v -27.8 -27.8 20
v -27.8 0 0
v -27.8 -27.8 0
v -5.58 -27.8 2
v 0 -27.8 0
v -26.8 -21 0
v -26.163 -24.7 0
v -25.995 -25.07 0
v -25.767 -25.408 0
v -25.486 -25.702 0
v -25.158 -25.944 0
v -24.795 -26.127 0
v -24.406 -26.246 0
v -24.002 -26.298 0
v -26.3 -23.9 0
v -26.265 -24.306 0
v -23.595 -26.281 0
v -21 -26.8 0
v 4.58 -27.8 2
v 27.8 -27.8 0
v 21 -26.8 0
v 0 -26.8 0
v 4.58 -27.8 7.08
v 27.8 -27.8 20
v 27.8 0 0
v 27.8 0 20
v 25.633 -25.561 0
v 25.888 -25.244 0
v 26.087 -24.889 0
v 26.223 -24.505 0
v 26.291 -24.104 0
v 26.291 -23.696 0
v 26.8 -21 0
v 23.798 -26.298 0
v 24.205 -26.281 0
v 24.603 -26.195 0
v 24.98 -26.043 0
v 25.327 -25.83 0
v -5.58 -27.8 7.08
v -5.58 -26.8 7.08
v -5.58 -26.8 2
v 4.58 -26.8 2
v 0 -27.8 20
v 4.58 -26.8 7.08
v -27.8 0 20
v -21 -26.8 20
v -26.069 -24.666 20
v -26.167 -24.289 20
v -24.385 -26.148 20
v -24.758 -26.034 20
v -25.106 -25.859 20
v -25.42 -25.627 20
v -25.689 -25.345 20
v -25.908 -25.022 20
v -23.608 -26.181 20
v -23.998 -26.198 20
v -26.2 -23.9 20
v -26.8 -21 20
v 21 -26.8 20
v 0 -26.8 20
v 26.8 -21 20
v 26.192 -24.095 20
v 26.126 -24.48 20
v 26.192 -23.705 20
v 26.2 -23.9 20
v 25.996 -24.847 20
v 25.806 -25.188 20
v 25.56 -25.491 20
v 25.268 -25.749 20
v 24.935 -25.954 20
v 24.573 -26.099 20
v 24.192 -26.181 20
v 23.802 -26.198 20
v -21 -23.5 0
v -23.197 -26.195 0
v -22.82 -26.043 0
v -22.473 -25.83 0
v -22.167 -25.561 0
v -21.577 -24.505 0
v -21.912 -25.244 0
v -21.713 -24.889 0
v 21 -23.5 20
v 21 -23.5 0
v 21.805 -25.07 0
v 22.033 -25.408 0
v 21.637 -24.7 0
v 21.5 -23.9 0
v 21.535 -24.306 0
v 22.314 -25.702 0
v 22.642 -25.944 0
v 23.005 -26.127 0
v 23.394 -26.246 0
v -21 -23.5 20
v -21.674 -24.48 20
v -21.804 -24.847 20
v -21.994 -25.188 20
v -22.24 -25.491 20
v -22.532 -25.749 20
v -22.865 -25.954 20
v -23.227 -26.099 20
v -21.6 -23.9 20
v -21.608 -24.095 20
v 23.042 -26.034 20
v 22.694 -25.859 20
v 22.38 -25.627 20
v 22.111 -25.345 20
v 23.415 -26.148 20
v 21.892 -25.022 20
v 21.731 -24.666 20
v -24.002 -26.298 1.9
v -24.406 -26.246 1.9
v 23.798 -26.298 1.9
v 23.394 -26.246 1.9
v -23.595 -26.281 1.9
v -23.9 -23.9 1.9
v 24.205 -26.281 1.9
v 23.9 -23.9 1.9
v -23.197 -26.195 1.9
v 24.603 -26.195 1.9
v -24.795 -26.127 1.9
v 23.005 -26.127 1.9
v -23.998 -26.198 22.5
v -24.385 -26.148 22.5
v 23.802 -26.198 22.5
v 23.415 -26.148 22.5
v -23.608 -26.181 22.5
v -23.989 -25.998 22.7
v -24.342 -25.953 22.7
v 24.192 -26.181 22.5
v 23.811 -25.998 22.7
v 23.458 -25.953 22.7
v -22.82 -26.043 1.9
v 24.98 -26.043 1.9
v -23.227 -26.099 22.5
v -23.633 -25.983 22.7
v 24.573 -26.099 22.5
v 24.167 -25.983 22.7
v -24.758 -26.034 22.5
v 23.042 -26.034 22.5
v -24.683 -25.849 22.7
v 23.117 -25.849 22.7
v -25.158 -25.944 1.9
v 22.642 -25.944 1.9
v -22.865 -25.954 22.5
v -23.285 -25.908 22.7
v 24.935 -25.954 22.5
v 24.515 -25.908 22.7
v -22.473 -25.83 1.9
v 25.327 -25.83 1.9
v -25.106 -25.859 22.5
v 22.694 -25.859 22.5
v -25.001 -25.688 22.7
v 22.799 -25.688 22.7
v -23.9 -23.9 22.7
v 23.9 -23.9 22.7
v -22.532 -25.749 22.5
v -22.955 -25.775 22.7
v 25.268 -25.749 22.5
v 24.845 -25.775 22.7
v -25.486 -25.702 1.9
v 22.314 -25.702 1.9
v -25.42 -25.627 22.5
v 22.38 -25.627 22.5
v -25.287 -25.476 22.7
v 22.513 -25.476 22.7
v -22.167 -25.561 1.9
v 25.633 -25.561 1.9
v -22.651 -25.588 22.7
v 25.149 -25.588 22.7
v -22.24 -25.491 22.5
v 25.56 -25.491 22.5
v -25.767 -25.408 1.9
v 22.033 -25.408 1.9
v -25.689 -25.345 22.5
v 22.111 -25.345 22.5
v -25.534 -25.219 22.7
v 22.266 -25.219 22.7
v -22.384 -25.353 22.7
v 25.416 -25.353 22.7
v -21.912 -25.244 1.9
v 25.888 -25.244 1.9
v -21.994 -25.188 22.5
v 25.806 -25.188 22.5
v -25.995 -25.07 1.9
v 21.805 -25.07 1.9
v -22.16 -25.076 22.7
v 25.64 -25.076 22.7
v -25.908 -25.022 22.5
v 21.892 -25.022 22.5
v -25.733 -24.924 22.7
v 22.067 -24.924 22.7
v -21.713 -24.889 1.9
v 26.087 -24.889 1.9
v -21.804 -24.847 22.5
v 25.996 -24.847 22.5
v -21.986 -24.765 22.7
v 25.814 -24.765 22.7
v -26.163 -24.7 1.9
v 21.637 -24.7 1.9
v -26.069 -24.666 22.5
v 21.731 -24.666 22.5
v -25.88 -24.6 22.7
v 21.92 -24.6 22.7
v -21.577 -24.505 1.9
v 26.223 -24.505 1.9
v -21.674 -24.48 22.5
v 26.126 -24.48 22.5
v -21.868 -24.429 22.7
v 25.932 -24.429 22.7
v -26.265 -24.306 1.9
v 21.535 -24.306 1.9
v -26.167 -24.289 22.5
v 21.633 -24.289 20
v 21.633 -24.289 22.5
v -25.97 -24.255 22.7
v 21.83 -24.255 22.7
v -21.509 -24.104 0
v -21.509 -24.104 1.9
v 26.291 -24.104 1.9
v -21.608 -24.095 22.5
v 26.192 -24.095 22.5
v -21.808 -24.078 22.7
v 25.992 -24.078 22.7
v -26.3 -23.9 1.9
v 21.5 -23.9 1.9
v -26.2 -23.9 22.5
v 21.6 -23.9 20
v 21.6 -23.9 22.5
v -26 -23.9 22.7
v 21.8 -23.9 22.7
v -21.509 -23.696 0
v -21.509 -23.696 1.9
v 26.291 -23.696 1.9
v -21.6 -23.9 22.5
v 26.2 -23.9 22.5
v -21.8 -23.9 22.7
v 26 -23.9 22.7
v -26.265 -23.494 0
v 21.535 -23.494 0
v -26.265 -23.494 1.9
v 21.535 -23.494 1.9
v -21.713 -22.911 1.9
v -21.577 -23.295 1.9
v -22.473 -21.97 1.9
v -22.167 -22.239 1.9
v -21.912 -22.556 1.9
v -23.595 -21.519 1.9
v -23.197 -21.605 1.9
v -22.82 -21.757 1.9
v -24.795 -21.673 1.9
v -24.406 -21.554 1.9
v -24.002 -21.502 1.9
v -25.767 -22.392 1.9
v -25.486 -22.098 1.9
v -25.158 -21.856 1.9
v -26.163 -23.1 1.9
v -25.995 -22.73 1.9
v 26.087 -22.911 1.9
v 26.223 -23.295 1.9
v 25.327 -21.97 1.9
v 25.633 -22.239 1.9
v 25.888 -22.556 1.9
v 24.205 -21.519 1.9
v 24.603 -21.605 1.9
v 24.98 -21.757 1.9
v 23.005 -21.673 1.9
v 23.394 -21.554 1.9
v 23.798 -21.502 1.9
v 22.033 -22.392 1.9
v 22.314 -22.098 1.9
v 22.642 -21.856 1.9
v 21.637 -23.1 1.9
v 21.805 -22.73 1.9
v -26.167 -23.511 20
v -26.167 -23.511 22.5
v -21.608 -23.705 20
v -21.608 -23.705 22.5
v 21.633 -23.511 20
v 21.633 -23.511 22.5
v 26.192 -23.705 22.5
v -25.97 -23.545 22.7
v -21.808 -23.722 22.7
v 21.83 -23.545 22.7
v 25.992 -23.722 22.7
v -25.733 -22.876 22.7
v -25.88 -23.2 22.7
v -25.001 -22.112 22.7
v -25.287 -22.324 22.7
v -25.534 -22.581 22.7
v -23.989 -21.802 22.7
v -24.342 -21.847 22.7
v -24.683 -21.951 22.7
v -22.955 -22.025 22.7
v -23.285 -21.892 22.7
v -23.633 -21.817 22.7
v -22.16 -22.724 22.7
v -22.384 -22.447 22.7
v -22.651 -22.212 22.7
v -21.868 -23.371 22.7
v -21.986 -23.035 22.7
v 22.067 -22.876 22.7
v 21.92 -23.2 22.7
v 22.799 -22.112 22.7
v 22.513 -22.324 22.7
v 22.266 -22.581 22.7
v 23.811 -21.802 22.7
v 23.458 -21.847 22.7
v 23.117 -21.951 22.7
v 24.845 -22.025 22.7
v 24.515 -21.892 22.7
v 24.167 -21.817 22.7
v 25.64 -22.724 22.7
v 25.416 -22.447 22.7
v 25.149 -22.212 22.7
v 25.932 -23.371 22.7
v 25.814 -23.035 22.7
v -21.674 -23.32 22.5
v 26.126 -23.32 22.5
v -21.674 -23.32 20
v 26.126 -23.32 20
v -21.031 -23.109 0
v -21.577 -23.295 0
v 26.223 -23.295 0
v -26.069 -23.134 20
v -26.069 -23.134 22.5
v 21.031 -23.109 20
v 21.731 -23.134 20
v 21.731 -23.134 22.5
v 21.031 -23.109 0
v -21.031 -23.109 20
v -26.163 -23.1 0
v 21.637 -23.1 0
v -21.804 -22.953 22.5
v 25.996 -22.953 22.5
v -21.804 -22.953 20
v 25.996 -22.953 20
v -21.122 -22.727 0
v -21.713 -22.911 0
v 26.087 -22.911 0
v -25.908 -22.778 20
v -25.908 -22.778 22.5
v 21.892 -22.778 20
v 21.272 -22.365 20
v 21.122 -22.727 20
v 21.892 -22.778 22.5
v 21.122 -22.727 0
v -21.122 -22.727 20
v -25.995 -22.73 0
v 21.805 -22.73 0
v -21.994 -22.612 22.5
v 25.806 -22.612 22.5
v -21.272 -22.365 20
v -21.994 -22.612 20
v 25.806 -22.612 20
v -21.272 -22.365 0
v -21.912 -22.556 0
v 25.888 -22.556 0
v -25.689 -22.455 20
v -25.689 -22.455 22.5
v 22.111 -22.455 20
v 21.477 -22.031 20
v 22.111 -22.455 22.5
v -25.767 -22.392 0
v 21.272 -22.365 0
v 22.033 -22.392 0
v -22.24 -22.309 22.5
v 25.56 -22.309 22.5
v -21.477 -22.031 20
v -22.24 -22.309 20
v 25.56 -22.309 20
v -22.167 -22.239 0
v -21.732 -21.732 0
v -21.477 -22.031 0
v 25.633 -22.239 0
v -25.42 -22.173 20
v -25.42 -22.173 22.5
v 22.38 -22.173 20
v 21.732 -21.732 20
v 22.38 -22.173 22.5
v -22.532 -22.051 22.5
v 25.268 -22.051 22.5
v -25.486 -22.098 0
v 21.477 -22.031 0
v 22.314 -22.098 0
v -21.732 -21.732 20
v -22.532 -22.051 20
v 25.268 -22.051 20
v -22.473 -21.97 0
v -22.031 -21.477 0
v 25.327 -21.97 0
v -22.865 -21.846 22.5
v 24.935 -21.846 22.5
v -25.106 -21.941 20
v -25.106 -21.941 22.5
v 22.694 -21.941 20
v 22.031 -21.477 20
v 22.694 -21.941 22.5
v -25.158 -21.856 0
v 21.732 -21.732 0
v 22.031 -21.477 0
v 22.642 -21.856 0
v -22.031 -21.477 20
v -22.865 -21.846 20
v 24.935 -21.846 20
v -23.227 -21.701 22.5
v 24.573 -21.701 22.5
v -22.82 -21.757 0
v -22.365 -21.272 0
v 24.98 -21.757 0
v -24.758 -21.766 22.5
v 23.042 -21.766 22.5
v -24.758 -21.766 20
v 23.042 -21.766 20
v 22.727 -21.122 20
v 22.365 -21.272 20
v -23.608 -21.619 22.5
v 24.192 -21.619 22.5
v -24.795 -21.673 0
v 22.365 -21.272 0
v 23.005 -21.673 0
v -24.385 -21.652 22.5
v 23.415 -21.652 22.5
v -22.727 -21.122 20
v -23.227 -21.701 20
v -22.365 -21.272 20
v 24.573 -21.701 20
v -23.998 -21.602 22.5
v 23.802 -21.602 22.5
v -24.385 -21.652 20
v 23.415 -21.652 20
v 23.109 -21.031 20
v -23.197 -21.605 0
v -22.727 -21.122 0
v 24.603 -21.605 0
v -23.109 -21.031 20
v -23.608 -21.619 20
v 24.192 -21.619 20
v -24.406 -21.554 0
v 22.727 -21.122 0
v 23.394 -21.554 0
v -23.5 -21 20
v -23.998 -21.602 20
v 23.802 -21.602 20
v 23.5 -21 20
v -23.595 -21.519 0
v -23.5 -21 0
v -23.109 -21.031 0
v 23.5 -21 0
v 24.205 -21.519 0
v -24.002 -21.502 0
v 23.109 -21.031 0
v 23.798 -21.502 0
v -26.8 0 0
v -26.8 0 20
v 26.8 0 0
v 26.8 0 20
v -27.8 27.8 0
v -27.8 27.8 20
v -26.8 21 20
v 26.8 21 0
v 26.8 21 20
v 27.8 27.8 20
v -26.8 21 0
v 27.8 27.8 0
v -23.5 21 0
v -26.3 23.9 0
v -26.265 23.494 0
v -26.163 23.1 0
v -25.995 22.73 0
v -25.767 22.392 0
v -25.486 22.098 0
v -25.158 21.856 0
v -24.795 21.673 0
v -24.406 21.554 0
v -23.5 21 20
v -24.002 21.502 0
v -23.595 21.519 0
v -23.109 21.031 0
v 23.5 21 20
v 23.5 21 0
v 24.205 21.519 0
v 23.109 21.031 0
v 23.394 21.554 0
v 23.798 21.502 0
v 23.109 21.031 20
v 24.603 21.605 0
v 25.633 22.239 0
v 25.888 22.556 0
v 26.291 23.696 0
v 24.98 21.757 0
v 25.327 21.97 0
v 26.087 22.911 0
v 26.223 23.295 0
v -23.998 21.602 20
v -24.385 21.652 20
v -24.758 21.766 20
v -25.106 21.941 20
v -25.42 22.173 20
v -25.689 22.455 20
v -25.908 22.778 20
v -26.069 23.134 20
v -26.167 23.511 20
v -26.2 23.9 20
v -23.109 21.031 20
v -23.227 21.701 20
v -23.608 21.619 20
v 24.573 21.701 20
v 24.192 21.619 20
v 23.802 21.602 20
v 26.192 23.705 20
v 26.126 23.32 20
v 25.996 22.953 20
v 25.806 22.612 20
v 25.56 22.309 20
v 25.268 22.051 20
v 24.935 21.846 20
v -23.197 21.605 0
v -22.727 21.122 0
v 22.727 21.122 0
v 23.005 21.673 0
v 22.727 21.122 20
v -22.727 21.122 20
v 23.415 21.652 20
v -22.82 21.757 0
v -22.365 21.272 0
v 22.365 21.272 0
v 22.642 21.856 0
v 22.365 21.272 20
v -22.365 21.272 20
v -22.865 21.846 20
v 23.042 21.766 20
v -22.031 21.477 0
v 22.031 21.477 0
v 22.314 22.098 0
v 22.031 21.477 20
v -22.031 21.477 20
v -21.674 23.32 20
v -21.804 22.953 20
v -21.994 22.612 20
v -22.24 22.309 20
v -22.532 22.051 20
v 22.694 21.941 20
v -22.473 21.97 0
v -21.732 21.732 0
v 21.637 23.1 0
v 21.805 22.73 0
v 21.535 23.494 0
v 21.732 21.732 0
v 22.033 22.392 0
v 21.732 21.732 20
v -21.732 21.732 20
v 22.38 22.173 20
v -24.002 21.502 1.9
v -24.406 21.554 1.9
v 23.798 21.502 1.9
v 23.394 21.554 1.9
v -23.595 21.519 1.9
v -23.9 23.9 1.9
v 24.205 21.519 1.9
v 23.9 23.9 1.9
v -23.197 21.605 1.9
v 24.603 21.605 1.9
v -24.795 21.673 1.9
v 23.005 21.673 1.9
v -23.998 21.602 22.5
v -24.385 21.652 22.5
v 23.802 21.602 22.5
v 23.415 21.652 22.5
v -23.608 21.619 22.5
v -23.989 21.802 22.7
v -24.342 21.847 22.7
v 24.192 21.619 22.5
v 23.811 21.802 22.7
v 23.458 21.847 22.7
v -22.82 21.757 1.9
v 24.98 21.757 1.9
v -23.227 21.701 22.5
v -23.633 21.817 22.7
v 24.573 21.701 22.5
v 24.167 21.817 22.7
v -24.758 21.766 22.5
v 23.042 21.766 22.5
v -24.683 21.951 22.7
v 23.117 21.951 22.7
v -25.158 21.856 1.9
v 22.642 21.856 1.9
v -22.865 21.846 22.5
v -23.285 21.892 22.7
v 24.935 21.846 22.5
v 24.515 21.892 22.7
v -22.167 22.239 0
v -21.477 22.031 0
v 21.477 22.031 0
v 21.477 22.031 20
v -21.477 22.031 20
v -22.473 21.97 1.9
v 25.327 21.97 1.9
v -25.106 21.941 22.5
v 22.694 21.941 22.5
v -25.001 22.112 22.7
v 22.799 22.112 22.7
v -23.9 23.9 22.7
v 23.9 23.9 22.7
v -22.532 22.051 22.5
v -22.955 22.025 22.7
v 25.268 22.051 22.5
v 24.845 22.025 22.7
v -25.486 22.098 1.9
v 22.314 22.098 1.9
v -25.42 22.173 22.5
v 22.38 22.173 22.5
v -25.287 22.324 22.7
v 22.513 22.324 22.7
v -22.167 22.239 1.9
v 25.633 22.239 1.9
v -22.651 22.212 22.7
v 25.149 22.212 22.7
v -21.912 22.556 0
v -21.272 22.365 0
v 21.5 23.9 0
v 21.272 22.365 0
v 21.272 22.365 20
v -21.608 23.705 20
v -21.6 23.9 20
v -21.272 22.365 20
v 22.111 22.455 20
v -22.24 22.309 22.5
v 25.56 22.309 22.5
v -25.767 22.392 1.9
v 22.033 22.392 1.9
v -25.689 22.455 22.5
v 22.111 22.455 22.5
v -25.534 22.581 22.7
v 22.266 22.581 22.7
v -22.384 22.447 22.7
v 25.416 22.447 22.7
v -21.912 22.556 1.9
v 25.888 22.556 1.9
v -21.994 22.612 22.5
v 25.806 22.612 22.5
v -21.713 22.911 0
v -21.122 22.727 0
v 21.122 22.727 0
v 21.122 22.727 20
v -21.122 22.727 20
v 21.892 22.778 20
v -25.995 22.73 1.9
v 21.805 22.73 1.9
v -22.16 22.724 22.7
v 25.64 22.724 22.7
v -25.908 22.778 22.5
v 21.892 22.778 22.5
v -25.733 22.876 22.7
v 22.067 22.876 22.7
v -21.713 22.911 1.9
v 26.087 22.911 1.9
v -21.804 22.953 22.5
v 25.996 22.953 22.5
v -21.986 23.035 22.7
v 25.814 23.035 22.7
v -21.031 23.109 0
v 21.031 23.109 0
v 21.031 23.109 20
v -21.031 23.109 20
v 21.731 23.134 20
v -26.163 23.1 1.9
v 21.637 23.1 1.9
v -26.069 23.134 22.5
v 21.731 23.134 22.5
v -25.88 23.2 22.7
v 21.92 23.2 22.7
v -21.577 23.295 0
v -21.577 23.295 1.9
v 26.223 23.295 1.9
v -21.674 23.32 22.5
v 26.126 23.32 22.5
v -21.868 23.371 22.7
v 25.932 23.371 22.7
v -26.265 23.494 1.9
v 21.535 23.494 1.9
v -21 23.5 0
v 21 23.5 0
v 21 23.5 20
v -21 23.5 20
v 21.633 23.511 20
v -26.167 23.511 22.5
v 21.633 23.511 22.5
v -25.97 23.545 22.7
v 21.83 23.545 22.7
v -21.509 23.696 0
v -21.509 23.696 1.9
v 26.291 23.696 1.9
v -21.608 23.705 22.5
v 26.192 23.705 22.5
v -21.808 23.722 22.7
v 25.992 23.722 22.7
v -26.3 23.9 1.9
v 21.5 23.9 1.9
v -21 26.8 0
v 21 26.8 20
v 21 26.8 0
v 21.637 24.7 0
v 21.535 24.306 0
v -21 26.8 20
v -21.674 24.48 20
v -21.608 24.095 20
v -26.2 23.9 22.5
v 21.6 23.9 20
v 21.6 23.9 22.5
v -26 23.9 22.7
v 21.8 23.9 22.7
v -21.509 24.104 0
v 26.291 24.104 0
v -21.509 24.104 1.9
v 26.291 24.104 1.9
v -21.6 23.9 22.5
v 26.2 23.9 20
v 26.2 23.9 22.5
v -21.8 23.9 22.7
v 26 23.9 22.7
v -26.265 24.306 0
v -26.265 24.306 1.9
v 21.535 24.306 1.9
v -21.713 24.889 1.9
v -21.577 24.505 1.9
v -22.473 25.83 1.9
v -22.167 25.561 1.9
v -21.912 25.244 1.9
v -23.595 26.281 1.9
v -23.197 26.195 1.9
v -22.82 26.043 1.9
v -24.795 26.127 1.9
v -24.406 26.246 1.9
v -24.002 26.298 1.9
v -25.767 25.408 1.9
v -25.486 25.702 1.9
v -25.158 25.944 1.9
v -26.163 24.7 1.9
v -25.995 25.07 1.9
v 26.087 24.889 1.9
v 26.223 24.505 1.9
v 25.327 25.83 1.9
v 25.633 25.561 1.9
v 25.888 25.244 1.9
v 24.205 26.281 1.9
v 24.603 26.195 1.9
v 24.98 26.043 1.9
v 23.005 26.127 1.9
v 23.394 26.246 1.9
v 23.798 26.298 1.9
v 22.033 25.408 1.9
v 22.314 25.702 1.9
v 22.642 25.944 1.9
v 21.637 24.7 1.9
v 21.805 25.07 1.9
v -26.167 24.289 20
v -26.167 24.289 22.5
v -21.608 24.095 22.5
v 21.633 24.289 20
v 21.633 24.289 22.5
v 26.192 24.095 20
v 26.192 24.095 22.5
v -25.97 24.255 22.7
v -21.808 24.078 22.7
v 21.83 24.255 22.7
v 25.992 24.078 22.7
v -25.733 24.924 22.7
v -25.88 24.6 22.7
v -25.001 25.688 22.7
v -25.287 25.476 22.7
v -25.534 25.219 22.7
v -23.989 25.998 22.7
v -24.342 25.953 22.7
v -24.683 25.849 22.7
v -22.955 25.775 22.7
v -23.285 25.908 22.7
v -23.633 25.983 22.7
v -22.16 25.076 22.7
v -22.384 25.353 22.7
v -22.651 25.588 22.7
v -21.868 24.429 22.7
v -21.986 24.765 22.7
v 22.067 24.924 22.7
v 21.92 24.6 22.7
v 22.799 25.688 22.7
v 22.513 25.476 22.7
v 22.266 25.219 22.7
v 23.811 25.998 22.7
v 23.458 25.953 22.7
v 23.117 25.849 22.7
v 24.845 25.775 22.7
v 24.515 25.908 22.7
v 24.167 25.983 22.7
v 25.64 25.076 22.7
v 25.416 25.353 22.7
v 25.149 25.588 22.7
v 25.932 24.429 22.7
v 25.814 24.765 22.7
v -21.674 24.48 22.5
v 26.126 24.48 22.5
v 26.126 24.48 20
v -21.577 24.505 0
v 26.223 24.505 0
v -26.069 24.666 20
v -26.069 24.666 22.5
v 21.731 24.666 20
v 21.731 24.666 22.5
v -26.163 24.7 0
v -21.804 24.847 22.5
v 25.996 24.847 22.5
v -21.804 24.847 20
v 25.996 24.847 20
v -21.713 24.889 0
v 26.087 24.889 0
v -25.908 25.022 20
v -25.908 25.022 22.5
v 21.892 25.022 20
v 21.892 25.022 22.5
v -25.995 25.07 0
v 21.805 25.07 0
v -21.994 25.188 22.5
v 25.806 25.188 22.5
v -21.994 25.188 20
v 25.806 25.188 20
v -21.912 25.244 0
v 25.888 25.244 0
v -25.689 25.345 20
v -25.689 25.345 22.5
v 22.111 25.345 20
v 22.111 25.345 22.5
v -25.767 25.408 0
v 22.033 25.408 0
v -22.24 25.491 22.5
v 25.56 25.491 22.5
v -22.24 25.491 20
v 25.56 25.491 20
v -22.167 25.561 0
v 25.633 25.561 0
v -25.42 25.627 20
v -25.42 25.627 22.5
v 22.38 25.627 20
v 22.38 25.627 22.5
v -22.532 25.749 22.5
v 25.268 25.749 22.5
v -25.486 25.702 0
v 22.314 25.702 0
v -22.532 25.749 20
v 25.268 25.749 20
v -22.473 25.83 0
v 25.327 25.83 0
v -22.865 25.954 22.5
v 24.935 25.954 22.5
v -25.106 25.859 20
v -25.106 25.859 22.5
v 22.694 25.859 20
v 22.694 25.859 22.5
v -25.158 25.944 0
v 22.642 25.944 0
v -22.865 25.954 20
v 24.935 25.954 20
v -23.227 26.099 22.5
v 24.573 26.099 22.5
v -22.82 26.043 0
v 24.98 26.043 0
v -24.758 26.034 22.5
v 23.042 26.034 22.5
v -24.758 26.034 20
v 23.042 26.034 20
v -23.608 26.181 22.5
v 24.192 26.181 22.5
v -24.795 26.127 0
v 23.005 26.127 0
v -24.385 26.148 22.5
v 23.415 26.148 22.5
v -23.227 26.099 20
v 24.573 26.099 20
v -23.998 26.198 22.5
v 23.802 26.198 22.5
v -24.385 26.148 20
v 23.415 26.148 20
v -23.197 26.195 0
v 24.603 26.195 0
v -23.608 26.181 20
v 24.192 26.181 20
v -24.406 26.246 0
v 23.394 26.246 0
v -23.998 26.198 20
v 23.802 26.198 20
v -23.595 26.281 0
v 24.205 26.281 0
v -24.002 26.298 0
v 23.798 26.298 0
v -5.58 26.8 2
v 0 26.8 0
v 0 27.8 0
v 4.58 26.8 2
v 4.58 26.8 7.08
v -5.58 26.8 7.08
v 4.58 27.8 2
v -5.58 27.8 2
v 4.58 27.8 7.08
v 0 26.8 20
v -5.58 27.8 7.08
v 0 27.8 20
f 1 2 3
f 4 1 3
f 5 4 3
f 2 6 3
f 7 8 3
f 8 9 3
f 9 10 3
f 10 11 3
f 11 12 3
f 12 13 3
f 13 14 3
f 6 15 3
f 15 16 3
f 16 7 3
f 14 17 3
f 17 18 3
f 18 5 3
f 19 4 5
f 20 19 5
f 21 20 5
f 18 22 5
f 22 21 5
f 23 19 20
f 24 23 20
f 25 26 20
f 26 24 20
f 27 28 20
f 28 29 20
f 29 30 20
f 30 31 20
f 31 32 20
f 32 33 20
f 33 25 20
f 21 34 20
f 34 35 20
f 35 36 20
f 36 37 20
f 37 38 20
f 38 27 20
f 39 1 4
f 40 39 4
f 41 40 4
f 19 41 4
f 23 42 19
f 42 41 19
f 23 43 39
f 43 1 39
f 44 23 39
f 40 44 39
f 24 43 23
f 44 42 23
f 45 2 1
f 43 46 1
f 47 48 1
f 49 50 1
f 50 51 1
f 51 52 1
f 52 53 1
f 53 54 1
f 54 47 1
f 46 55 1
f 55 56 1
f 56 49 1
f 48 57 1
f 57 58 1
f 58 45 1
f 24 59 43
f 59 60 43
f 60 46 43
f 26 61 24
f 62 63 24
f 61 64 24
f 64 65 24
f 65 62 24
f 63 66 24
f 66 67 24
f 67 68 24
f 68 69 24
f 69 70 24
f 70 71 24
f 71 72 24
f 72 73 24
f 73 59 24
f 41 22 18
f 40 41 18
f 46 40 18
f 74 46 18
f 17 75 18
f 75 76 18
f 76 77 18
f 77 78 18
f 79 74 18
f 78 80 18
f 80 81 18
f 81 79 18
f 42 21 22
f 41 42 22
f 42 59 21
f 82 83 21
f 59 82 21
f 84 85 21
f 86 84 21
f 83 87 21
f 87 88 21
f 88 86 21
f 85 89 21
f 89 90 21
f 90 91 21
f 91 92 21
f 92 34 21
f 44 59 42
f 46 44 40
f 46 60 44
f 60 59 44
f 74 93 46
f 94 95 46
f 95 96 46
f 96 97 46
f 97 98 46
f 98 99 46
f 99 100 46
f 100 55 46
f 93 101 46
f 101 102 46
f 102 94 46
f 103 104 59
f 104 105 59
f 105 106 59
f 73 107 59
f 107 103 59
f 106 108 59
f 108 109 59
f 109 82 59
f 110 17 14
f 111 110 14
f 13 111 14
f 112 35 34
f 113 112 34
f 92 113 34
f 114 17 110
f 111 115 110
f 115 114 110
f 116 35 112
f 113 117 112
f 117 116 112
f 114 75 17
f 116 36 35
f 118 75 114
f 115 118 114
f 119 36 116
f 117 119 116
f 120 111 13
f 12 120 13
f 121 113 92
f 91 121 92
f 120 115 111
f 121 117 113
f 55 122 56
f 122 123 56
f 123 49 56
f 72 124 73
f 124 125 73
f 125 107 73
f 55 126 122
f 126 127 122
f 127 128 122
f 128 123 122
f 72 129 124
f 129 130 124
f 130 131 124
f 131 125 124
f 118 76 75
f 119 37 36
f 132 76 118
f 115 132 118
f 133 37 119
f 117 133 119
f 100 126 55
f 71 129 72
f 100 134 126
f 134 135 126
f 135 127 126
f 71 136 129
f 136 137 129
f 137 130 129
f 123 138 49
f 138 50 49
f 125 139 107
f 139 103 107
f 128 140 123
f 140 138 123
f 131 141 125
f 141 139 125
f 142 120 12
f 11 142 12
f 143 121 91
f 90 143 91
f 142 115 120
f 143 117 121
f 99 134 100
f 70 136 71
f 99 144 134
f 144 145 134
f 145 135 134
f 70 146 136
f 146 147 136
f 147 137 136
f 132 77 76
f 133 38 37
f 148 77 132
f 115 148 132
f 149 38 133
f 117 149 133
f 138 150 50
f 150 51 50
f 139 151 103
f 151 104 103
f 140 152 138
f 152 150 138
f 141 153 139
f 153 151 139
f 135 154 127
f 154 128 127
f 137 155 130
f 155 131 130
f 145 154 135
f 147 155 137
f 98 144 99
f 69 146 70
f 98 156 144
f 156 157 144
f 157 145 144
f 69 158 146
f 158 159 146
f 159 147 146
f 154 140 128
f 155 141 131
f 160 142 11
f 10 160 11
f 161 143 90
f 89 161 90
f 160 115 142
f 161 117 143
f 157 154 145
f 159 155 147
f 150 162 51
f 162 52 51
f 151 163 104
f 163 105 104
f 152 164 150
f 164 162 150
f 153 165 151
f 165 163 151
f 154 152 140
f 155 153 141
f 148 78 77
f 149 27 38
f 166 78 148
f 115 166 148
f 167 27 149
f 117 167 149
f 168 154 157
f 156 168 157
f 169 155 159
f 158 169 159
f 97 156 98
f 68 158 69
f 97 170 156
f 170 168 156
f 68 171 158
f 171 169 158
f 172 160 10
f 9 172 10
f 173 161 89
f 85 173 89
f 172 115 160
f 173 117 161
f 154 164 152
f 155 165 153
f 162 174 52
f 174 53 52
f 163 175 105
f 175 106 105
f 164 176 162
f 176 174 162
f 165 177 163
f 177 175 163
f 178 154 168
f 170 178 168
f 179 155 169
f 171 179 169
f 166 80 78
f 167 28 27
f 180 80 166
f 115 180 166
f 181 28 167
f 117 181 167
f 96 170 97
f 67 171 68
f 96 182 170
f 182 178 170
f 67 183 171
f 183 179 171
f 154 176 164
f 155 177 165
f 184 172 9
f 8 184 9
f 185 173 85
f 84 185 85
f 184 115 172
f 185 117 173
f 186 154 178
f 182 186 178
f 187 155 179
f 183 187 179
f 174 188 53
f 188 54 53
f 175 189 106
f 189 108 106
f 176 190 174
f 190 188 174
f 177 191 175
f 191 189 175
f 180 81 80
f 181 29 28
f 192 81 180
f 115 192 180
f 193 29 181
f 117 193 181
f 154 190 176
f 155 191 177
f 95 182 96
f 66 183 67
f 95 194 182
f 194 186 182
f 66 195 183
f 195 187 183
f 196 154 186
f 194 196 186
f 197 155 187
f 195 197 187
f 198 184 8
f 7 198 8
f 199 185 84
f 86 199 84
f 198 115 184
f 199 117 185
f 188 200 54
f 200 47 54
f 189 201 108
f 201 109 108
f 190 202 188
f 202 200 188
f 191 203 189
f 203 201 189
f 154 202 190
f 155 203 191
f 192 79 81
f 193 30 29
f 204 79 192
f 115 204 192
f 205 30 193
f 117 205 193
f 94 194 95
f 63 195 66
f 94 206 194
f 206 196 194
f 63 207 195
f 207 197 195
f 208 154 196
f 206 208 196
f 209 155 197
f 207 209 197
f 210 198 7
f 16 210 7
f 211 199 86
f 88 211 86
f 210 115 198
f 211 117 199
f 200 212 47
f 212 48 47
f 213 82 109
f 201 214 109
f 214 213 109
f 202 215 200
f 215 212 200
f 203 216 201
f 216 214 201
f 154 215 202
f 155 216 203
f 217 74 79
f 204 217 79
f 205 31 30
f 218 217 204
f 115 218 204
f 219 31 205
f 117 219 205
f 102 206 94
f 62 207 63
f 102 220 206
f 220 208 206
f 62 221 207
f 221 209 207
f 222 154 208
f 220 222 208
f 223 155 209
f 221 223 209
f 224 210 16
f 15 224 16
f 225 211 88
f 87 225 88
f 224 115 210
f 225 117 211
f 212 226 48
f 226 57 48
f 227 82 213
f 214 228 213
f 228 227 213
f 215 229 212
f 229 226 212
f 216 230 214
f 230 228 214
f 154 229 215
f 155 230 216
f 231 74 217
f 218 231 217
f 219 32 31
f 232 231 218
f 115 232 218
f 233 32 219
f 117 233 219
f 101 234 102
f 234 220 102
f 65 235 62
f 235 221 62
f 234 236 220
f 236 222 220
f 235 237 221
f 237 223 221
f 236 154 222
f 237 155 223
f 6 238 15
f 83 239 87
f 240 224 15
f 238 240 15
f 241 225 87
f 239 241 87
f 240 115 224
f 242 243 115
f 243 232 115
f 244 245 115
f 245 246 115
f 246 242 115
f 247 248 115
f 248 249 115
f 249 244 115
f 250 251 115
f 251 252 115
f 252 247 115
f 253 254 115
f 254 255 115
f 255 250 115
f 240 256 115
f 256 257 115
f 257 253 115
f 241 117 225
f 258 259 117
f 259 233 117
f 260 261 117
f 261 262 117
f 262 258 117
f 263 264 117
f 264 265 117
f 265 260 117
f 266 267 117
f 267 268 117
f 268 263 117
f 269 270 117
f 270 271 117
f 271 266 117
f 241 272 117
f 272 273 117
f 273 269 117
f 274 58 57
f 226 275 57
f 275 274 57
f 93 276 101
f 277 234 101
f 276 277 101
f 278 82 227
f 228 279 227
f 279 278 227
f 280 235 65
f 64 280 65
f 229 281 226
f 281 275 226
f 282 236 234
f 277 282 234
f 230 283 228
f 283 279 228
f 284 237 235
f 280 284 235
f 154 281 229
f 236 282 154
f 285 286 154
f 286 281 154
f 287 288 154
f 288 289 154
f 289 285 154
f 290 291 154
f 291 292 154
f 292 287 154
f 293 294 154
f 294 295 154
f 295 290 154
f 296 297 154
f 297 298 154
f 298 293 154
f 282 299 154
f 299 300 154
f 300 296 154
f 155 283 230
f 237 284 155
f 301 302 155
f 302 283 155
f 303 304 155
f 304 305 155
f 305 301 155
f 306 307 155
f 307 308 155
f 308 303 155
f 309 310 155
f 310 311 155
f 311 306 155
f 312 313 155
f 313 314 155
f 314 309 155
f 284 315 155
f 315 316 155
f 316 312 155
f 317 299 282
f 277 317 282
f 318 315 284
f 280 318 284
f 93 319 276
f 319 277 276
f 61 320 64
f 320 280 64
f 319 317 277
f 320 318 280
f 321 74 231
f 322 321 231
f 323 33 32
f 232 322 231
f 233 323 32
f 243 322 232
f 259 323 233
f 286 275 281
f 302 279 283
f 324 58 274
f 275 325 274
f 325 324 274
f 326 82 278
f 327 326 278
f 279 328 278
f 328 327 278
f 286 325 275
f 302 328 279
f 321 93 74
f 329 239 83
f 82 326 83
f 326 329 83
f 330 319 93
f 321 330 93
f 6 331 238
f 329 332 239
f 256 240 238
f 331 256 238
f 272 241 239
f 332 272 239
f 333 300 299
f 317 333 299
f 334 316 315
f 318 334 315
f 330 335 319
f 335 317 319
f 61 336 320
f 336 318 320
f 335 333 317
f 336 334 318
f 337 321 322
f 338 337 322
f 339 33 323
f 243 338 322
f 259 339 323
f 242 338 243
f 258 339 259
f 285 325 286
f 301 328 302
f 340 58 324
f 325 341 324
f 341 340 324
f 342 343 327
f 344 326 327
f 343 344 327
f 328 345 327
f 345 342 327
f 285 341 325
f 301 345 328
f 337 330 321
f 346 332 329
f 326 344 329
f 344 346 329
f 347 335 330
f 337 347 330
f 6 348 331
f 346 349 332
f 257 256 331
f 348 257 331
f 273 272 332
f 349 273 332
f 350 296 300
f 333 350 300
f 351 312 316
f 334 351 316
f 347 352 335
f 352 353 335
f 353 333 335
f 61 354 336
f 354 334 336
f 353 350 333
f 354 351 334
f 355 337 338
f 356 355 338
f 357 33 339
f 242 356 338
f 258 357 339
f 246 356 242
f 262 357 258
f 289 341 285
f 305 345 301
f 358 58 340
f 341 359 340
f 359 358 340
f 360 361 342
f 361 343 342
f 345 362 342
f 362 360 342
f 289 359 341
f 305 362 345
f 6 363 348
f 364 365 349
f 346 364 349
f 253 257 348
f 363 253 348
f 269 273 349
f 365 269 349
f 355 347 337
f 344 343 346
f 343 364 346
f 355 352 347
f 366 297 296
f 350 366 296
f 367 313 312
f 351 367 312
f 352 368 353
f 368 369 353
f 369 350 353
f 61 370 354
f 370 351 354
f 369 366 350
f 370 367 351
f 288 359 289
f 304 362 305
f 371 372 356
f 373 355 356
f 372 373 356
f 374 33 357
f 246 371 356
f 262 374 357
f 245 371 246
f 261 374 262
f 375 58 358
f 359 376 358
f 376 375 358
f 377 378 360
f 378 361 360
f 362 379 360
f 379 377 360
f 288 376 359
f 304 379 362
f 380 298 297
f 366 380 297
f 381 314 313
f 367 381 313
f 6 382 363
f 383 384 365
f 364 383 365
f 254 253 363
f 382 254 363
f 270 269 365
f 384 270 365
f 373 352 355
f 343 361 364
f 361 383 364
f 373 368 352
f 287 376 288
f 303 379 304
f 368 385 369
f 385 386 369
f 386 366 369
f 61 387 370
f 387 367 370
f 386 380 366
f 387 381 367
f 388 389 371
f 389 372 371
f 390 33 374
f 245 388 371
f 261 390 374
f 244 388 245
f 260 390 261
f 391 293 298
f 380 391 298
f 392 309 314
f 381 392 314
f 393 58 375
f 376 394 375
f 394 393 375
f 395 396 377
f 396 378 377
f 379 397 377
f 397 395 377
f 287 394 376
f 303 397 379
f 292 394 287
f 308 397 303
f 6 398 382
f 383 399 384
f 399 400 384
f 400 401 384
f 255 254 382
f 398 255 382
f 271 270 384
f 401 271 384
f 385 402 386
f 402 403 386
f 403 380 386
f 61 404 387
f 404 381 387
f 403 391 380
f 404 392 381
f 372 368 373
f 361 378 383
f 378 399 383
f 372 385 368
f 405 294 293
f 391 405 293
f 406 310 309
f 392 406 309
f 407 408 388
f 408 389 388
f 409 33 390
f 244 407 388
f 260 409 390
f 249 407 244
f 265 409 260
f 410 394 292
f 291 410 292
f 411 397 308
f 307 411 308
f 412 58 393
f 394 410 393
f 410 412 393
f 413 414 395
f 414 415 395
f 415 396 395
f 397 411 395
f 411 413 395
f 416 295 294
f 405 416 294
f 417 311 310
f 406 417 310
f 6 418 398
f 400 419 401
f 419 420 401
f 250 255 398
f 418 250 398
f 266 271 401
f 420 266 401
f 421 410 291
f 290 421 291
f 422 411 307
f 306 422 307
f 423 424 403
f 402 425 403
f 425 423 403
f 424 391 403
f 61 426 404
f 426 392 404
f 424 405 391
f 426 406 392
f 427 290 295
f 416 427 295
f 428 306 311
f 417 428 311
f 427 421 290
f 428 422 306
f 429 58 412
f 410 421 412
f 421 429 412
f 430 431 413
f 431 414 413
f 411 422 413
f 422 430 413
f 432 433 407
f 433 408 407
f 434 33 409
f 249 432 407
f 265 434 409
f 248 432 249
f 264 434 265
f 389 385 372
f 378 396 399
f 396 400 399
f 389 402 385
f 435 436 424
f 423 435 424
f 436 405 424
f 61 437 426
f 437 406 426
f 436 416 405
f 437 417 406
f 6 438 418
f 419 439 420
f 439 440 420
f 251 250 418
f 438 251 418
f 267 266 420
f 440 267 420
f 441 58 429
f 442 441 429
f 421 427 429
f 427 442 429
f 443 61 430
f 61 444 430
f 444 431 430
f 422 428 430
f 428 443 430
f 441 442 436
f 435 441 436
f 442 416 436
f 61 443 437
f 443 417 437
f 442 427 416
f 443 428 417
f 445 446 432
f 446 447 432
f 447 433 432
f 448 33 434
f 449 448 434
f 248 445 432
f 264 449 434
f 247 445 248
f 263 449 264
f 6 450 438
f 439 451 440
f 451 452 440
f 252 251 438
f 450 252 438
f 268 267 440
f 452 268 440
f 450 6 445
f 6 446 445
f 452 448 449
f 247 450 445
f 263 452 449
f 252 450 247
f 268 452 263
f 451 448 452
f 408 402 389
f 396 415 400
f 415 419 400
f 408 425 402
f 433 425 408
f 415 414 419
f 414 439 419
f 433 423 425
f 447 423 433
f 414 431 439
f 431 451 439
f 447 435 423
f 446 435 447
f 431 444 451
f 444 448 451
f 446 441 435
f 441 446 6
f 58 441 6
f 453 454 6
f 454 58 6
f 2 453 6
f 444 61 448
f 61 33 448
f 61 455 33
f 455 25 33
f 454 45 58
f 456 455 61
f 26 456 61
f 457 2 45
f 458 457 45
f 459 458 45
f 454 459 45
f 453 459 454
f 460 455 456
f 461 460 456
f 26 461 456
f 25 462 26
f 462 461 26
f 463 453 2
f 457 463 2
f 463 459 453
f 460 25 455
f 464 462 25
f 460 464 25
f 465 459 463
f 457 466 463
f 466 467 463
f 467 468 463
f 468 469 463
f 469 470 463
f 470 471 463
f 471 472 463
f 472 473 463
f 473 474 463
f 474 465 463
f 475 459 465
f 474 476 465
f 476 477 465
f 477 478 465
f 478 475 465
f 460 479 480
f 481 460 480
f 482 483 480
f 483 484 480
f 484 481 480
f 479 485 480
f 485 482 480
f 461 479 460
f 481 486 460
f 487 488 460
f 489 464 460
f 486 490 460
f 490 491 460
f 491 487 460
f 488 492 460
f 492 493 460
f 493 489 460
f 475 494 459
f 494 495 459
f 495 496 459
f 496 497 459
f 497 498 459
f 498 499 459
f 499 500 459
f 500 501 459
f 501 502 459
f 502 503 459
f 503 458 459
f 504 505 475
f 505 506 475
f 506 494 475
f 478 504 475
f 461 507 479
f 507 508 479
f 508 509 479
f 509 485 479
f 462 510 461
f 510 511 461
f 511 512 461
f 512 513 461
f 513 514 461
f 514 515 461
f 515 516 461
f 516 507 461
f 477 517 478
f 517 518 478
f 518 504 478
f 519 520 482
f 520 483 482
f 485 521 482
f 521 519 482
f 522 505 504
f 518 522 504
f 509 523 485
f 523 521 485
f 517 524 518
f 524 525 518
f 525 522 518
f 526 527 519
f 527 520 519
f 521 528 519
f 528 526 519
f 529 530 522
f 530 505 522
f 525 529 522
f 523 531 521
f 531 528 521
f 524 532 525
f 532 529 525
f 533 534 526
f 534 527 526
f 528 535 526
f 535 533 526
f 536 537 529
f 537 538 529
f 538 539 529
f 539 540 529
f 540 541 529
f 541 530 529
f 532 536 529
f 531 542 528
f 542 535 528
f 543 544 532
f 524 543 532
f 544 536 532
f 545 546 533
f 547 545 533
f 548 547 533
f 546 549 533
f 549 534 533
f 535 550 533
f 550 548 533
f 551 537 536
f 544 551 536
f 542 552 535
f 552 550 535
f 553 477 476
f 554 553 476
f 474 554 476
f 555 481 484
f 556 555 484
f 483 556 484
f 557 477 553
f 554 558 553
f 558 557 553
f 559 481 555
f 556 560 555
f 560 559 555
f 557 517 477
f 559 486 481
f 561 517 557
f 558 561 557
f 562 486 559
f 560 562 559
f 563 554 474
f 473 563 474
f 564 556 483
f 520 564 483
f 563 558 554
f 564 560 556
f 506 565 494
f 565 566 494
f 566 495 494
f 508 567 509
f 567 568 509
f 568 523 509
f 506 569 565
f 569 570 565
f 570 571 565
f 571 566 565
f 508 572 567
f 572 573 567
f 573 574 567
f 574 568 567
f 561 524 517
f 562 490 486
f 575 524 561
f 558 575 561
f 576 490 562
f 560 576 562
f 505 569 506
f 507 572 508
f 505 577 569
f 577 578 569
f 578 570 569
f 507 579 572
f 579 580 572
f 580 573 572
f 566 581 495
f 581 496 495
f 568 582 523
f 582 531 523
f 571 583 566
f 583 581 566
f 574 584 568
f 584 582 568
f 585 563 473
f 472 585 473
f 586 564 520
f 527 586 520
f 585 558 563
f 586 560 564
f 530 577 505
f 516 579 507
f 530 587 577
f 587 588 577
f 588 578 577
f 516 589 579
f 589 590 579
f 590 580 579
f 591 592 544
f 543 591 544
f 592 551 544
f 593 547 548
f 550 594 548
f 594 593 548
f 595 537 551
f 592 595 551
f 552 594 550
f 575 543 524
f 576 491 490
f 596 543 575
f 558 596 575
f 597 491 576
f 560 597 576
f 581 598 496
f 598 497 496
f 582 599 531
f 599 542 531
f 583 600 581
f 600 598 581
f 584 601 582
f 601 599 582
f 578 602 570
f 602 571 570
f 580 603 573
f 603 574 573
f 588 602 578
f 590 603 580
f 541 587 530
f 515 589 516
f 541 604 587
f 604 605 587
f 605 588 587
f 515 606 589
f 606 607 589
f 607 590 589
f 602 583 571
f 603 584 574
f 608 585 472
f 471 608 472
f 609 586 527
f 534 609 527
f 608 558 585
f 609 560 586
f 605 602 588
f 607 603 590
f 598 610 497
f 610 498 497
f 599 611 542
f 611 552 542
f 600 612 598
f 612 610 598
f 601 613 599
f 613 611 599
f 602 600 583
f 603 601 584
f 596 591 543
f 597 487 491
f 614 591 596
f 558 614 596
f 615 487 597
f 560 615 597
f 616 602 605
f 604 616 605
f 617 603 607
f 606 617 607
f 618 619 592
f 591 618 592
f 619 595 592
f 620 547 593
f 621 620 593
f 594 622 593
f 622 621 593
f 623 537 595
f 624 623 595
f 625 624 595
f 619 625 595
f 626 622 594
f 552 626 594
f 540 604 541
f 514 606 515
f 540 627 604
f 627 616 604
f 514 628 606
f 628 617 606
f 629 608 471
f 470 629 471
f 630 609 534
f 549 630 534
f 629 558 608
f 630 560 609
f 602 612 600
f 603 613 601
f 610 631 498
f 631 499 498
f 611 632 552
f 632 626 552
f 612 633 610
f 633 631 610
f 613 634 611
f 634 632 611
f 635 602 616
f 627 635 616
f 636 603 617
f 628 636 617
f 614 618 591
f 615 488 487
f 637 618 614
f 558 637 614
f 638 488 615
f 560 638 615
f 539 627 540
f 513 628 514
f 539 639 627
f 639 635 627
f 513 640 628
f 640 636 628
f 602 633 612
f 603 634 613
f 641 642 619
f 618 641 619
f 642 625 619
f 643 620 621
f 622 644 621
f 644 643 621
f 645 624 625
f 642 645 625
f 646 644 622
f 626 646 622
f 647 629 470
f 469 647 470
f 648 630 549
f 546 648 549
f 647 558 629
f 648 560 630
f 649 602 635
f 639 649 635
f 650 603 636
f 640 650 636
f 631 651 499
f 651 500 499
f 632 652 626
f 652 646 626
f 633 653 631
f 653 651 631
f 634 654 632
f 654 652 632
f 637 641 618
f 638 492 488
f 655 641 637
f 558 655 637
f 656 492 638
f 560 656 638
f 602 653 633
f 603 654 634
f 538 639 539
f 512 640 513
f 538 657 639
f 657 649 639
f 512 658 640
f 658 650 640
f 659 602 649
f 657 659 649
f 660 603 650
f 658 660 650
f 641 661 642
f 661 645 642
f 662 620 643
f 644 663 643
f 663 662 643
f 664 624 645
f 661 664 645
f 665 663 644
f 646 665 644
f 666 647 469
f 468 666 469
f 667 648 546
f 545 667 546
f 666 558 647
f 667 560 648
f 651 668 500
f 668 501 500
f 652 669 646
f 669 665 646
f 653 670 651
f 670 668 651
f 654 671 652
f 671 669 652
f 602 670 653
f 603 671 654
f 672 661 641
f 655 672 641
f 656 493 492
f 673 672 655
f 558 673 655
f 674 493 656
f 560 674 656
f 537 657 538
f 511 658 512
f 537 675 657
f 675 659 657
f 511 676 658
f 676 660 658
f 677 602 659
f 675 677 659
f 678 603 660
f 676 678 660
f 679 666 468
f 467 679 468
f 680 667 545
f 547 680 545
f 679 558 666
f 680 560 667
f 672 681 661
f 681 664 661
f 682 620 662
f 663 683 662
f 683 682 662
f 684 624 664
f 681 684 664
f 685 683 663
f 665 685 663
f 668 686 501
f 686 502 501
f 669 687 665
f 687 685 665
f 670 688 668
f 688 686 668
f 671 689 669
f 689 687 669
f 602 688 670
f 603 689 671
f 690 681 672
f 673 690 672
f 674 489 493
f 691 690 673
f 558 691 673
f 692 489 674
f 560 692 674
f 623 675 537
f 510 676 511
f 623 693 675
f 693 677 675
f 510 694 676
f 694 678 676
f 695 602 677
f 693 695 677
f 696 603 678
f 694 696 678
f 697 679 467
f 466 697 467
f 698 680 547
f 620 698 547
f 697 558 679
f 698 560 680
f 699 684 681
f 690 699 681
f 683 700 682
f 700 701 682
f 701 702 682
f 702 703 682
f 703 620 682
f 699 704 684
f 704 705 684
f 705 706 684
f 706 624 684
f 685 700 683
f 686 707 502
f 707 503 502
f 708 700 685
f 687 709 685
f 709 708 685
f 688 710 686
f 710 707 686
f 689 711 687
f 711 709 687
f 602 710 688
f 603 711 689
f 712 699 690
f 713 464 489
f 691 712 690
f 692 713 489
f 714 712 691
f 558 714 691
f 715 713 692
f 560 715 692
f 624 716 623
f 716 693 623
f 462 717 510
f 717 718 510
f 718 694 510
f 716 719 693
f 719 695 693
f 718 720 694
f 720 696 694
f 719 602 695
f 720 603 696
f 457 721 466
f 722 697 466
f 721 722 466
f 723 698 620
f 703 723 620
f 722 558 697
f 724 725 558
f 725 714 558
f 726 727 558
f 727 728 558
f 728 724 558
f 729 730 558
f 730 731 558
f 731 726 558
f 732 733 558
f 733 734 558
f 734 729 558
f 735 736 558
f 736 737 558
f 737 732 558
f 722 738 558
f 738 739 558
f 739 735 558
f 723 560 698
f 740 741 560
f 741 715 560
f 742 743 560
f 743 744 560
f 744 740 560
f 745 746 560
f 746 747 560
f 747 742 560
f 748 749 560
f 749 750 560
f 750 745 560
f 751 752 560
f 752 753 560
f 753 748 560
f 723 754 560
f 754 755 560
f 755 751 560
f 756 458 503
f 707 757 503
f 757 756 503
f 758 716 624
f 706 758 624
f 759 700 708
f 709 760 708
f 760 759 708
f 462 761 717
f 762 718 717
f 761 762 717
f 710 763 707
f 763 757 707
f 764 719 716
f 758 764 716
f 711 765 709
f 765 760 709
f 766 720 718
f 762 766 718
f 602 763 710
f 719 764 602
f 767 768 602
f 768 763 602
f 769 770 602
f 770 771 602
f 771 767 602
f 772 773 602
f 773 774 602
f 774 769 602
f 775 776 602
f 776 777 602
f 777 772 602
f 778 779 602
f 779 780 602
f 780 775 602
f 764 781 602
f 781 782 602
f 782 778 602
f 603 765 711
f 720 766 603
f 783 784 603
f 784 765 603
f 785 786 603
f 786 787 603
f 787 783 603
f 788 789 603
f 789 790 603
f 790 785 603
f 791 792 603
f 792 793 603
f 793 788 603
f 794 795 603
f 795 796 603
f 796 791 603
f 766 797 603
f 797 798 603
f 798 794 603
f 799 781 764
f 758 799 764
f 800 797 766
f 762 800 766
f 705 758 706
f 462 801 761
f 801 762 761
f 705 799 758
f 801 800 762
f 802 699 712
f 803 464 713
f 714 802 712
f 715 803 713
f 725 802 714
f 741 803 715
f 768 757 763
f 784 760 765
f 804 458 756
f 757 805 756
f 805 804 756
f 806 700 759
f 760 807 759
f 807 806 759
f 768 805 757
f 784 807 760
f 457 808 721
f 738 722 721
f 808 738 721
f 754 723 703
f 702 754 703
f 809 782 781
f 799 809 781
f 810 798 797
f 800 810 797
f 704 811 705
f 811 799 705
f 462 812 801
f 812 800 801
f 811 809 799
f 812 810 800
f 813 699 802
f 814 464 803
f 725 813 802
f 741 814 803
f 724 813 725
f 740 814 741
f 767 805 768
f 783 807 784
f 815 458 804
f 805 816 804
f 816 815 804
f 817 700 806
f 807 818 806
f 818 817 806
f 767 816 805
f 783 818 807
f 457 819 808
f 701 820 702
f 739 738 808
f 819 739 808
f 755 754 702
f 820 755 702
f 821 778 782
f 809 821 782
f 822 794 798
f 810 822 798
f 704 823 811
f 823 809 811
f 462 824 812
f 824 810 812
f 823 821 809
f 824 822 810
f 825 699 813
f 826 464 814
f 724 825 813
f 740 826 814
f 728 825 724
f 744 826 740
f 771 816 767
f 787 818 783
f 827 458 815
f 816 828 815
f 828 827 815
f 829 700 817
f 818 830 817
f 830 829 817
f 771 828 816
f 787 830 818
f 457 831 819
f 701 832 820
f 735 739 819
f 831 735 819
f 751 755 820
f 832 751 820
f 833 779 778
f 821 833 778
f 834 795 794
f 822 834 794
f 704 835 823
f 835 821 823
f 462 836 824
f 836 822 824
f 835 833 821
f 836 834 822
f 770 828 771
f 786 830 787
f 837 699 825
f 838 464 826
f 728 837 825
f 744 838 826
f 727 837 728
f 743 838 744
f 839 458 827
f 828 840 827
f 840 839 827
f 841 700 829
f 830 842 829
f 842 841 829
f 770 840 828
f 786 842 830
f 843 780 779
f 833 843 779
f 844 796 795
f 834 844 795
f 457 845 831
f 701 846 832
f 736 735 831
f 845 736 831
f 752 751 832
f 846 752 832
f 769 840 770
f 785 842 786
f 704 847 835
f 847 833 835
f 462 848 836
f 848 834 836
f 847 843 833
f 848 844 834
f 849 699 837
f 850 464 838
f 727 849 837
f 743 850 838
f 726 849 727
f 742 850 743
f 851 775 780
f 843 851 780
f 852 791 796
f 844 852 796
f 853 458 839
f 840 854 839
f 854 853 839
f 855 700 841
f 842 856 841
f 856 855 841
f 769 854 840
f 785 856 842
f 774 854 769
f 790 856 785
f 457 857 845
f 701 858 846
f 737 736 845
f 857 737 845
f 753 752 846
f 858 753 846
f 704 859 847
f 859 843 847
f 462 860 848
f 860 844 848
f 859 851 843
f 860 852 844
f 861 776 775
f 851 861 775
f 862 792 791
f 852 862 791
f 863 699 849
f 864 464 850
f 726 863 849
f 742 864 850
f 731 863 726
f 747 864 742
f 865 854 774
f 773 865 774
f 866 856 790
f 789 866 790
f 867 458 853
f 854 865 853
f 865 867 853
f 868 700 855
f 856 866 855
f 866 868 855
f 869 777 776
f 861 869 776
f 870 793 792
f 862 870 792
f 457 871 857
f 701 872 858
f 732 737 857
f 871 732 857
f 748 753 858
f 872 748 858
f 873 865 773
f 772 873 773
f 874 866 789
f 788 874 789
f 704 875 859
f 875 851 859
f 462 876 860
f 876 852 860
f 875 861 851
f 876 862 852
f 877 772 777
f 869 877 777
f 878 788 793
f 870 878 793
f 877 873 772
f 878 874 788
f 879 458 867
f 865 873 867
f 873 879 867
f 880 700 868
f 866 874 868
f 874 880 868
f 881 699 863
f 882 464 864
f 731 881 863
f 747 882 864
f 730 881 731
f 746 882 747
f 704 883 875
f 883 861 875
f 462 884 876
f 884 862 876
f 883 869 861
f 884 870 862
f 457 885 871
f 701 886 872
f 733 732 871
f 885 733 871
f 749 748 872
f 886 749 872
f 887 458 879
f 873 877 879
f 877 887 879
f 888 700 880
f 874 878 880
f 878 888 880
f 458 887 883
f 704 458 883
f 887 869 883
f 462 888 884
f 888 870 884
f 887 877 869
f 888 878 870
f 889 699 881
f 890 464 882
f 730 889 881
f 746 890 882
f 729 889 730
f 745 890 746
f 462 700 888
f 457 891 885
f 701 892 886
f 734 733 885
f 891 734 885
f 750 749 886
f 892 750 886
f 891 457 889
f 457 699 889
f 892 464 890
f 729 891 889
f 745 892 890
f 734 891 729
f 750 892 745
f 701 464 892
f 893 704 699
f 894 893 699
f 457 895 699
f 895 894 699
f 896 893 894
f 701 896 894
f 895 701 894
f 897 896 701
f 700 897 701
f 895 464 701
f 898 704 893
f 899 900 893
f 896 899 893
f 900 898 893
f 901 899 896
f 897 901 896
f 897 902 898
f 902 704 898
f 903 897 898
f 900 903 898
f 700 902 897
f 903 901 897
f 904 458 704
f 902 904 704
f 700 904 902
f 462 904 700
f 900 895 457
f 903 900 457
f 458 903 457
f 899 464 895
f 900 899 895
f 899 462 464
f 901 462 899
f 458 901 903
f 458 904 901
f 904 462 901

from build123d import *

# Parameters (mm, degrees)
SKICA1_W                 = 5.8
SKICA1_H                 = 5.8
SKICA1_W_2               = 1
SKICA1_H_2               = 42
SKICA1_W_3               = 42
SKICA1_H_3               = 1
P_IDAT_VYSUNUT_M2_DEPTH  = 20
ZAOBLIT1_R               = 2.5
SKICA2_R                 = 2.4
ODEBRAT_VYSUNUT_M1_DEPTH = 1.9
SKICA3_R                 = 2.3
P_IDAT_VYSUNUT_M3_DEPTH  = 2.7
ZKOSEN_1_SIZE            = 0.2
SKICA4_W                 = 10.16
SKICA4_H                 = 5.08
ODEBRAT_VYSUNUT_M2_DEPTH = 68.7


with BuildPart() as part:
    # Skica1 → Přidat vysunutím2 (new body)
    with BuildSketch(Plane.XY):
        Polygon((-27.8, 27.8), (-27.8, 21), (-26.8, 21), (-26.8, 26.8), (-21, 26.8), (-21, 27.8), align=None)
        with Locations((-23.9, 23.9)):
            Rectangle(SKICA1_W, SKICA1_H)
        Polygon((26.8, 21), (27.8, 21), (27.8, 27.8), (21, 27.8), (21, 26.8), (26.8, 26.8), align=None)
        with Locations((23.9, 23.9)):
            Rectangle(SKICA1_W, SKICA1_H)
        Polygon((21, -26.8), (21, -27.8), (27.8, -27.8), (27.8, -21), (26.8, -21), (26.8, -26.8), align=None)
        with Locations((23.9, -23.9)):
            Rectangle(SKICA1_W, SKICA1_H)
        with Locations((-23.9, -23.9)):
            Rectangle(SKICA1_W, SKICA1_H)
        Polygon((-27.8, -27.8), (-21, -27.8), (-21, -26.8), (-26.8, -26.8), (-26.8, -21), (-27.8, -21), align=None)
        with Locations((-27.3, 0)):
            Rectangle(SKICA1_W_2, SKICA1_H_2)
        with Locations((0, -27.3)):
            Rectangle(SKICA1_W_3, SKICA1_H_3)
        with Locations((27.3, 0)):
            Rectangle(SKICA1_W_2, SKICA1_H_2)
        with Locations((0, 27.3)):
            Rectangle(SKICA1_W_3, SKICA1_H_3)
    extrude(amount=P_IDAT_VYSUNUT_M2_DEPTH)

    # Zaoblit1
    zaoblit1_edges = [part.edges().sort_by_distance(p)[0] for p in [
        (21, -21, 10),
        (21, 21, 10),
        (-21, 21, 10),
        (-21, -21, 10),
    ]]
    fillet(zaoblit1_edges, radius=ZAOBLIT1_R)

    # Skica2 → Odebrat vysunutím1 (cut)
    with BuildSketch(Plane(origin=(0, 0, 0), x_dir=(-1, 0, 0), z_dir=(0, 0, -1))):
        with Locations((-23.9, 23.9)):
            Circle(SKICA2_R)
        with Locations((23.9, 23.9)):
            Circle(SKICA2_R)
        with Locations((23.9, -23.9)):
            Circle(SKICA2_R)
        with Locations((-23.9, -23.9)):
            Circle(SKICA2_R)
    extrude(amount=-ODEBRAT_VYSUNUT_M1_DEPTH, mode=Mode.SUBTRACT)

    # Skica3 → Přidat vysunutím3 (add)
    with BuildSketch(Plane.XY.offset(20)):
        with Locations((-23.9, 23.9)):
            Circle(SKICA3_R)
        with Locations((23.9, 23.9)):
            Circle(SKICA3_R)
        with Locations((23.9, -23.9)):
            Circle(SKICA3_R)
        with Locations((-23.9, -23.9)):
            Circle(SKICA3_R)
    extrude(amount=P_IDAT_VYSUNUT_M3_DEPTH)

    # Zkosení1
    zkosen_1_edges = [part.edges().sort_by_distance(p)[0] for p in [
        (-26.2, 23.9, 22.7),
        (21.6, 23.9, 22.7),
        (21.6, -23.9, 22.7),
        (-26.2, -23.9, 22.7),
    ]]
    chamfer(zkosen_1_edges, length=ZKOSEN_1_SIZE)

    # Skica4 → Odebrat vysunutím2 (cut)
    with BuildSketch(Plane(origin=(0, -27.8, 0), x_dir=(-1, 0, 0), z_dir=(0, -1, 0))):
        with Locations((0.5, -4.54)):
            Rectangle(SKICA4_W, SKICA4_H)
    extrude(amount=-ODEBRAT_VYSUNUT_M2_DEPTH, mode=Mode.SUBTRACT)


solid = part.part
